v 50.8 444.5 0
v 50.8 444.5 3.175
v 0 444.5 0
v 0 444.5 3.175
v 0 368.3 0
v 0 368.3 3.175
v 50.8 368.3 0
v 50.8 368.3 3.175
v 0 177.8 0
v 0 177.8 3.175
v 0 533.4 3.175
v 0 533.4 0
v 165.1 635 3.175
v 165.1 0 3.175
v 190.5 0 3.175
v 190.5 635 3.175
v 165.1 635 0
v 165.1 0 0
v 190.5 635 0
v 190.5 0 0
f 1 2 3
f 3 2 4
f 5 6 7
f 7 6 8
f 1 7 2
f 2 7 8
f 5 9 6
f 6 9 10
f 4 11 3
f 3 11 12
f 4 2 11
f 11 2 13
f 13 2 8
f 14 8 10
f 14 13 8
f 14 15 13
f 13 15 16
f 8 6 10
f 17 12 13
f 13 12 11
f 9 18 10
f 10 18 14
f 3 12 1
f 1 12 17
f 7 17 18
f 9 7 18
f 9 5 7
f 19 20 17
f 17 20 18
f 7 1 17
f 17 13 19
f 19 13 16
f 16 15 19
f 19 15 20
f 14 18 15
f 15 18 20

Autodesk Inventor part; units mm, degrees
ref_plane "YZ Plane" through (0, 0, 0) normal (1, 0, 0) x (0, 1, 0)
ref_plane "XZ Plane" through (0, 0, 0) normal (0, 1, 0) x (-1, 0, 0)
ref_plane "XY Plane" through (0, 0, 0) normal (0, 0, 1) x (1, 0, 0)
sketch "Sketch1" plane through (0, 0, 0) normal (0, 0, 1) x (1, 0, 0)
  line L0 (0, 0) -> (190.5, 0)
  line L1 (190.5, 0) -> (190.5, 635)
  line L2 (190.5, 635) -> (0, 635)
  line L3 (0, 635) -> (0, 0)
  dimension "d0" = 190.5
  dimension "d1" = 635
extrude "Extrusion1" add sketch "Sketch1" along normal blind 3.175
sketch "Sketch2" plane through (0, 0, 3.175) normal (0, 0, 1) x (1, 0, 0)
  line L0 (0, 0) -> (0, 635) projected
  line L1 (190.5, 0) -> (0, 0) projected
  line L2 (165.1, 0) -> (0, 0)
  line L3 (0, 177.8) -> (165.1, 0)
  line L4 (0, 635) -> (190.5, 635) projected
  line L5 (165.1, 635) -> (0, 635)
  line L6 (0, 533.4) -> (165.1, 635)
  line L7 (0, 533.4) -> (0, 635)
  line L8 (165.1, 635) -> (165.1, 0) construction
  line L9 (190.5, 635) -> (190.5, 0) projected
  dimension "d5" = 177.8
  dimension "d8" = 101.6
  dimension "d9" = 25.4
extrude "Extrusion2" cut sketch "Sketch2" against normal up to next contours L0 L3 L1 | L0 L4 L6
sketch "Sketch4" plane through (0, 0, 3.175) normal (0, 0, 1) x (1, 0, 0)
  line L0 (0, 177.8) -> (0, 533.4) projected
  line L1 (0, 444.5) -> (50.8, 444.5)
  line L2 (50.8, 444.5) -> (50.8, 368.3)
  line L3 (50.8, 368.3) -> (0, 368.3)
  line L4 (0, 368.3) -> (0, 444.5)
  line L5 (165.1, 635) -> (50.8, 635) construction
  line L6 (50.8, 635) -> (50.8, 444.5) construction
  line L7 (50.8, 368.3) -> (50.8, 0) construction
  line L8 (50.8, 0) -> (165.1, 0) construction
  point P0 (0, 0)
  dimension "d17" = 76.2
  dimension "d18" = 50.8
  dimension "d27" = 190.5
extrude "ConveyorHole" cut sketch "Sketch4" against normal through all
properties part number "Conveyor_Frame_BottomStabilizerPlate" material "Aluminum-6061"
